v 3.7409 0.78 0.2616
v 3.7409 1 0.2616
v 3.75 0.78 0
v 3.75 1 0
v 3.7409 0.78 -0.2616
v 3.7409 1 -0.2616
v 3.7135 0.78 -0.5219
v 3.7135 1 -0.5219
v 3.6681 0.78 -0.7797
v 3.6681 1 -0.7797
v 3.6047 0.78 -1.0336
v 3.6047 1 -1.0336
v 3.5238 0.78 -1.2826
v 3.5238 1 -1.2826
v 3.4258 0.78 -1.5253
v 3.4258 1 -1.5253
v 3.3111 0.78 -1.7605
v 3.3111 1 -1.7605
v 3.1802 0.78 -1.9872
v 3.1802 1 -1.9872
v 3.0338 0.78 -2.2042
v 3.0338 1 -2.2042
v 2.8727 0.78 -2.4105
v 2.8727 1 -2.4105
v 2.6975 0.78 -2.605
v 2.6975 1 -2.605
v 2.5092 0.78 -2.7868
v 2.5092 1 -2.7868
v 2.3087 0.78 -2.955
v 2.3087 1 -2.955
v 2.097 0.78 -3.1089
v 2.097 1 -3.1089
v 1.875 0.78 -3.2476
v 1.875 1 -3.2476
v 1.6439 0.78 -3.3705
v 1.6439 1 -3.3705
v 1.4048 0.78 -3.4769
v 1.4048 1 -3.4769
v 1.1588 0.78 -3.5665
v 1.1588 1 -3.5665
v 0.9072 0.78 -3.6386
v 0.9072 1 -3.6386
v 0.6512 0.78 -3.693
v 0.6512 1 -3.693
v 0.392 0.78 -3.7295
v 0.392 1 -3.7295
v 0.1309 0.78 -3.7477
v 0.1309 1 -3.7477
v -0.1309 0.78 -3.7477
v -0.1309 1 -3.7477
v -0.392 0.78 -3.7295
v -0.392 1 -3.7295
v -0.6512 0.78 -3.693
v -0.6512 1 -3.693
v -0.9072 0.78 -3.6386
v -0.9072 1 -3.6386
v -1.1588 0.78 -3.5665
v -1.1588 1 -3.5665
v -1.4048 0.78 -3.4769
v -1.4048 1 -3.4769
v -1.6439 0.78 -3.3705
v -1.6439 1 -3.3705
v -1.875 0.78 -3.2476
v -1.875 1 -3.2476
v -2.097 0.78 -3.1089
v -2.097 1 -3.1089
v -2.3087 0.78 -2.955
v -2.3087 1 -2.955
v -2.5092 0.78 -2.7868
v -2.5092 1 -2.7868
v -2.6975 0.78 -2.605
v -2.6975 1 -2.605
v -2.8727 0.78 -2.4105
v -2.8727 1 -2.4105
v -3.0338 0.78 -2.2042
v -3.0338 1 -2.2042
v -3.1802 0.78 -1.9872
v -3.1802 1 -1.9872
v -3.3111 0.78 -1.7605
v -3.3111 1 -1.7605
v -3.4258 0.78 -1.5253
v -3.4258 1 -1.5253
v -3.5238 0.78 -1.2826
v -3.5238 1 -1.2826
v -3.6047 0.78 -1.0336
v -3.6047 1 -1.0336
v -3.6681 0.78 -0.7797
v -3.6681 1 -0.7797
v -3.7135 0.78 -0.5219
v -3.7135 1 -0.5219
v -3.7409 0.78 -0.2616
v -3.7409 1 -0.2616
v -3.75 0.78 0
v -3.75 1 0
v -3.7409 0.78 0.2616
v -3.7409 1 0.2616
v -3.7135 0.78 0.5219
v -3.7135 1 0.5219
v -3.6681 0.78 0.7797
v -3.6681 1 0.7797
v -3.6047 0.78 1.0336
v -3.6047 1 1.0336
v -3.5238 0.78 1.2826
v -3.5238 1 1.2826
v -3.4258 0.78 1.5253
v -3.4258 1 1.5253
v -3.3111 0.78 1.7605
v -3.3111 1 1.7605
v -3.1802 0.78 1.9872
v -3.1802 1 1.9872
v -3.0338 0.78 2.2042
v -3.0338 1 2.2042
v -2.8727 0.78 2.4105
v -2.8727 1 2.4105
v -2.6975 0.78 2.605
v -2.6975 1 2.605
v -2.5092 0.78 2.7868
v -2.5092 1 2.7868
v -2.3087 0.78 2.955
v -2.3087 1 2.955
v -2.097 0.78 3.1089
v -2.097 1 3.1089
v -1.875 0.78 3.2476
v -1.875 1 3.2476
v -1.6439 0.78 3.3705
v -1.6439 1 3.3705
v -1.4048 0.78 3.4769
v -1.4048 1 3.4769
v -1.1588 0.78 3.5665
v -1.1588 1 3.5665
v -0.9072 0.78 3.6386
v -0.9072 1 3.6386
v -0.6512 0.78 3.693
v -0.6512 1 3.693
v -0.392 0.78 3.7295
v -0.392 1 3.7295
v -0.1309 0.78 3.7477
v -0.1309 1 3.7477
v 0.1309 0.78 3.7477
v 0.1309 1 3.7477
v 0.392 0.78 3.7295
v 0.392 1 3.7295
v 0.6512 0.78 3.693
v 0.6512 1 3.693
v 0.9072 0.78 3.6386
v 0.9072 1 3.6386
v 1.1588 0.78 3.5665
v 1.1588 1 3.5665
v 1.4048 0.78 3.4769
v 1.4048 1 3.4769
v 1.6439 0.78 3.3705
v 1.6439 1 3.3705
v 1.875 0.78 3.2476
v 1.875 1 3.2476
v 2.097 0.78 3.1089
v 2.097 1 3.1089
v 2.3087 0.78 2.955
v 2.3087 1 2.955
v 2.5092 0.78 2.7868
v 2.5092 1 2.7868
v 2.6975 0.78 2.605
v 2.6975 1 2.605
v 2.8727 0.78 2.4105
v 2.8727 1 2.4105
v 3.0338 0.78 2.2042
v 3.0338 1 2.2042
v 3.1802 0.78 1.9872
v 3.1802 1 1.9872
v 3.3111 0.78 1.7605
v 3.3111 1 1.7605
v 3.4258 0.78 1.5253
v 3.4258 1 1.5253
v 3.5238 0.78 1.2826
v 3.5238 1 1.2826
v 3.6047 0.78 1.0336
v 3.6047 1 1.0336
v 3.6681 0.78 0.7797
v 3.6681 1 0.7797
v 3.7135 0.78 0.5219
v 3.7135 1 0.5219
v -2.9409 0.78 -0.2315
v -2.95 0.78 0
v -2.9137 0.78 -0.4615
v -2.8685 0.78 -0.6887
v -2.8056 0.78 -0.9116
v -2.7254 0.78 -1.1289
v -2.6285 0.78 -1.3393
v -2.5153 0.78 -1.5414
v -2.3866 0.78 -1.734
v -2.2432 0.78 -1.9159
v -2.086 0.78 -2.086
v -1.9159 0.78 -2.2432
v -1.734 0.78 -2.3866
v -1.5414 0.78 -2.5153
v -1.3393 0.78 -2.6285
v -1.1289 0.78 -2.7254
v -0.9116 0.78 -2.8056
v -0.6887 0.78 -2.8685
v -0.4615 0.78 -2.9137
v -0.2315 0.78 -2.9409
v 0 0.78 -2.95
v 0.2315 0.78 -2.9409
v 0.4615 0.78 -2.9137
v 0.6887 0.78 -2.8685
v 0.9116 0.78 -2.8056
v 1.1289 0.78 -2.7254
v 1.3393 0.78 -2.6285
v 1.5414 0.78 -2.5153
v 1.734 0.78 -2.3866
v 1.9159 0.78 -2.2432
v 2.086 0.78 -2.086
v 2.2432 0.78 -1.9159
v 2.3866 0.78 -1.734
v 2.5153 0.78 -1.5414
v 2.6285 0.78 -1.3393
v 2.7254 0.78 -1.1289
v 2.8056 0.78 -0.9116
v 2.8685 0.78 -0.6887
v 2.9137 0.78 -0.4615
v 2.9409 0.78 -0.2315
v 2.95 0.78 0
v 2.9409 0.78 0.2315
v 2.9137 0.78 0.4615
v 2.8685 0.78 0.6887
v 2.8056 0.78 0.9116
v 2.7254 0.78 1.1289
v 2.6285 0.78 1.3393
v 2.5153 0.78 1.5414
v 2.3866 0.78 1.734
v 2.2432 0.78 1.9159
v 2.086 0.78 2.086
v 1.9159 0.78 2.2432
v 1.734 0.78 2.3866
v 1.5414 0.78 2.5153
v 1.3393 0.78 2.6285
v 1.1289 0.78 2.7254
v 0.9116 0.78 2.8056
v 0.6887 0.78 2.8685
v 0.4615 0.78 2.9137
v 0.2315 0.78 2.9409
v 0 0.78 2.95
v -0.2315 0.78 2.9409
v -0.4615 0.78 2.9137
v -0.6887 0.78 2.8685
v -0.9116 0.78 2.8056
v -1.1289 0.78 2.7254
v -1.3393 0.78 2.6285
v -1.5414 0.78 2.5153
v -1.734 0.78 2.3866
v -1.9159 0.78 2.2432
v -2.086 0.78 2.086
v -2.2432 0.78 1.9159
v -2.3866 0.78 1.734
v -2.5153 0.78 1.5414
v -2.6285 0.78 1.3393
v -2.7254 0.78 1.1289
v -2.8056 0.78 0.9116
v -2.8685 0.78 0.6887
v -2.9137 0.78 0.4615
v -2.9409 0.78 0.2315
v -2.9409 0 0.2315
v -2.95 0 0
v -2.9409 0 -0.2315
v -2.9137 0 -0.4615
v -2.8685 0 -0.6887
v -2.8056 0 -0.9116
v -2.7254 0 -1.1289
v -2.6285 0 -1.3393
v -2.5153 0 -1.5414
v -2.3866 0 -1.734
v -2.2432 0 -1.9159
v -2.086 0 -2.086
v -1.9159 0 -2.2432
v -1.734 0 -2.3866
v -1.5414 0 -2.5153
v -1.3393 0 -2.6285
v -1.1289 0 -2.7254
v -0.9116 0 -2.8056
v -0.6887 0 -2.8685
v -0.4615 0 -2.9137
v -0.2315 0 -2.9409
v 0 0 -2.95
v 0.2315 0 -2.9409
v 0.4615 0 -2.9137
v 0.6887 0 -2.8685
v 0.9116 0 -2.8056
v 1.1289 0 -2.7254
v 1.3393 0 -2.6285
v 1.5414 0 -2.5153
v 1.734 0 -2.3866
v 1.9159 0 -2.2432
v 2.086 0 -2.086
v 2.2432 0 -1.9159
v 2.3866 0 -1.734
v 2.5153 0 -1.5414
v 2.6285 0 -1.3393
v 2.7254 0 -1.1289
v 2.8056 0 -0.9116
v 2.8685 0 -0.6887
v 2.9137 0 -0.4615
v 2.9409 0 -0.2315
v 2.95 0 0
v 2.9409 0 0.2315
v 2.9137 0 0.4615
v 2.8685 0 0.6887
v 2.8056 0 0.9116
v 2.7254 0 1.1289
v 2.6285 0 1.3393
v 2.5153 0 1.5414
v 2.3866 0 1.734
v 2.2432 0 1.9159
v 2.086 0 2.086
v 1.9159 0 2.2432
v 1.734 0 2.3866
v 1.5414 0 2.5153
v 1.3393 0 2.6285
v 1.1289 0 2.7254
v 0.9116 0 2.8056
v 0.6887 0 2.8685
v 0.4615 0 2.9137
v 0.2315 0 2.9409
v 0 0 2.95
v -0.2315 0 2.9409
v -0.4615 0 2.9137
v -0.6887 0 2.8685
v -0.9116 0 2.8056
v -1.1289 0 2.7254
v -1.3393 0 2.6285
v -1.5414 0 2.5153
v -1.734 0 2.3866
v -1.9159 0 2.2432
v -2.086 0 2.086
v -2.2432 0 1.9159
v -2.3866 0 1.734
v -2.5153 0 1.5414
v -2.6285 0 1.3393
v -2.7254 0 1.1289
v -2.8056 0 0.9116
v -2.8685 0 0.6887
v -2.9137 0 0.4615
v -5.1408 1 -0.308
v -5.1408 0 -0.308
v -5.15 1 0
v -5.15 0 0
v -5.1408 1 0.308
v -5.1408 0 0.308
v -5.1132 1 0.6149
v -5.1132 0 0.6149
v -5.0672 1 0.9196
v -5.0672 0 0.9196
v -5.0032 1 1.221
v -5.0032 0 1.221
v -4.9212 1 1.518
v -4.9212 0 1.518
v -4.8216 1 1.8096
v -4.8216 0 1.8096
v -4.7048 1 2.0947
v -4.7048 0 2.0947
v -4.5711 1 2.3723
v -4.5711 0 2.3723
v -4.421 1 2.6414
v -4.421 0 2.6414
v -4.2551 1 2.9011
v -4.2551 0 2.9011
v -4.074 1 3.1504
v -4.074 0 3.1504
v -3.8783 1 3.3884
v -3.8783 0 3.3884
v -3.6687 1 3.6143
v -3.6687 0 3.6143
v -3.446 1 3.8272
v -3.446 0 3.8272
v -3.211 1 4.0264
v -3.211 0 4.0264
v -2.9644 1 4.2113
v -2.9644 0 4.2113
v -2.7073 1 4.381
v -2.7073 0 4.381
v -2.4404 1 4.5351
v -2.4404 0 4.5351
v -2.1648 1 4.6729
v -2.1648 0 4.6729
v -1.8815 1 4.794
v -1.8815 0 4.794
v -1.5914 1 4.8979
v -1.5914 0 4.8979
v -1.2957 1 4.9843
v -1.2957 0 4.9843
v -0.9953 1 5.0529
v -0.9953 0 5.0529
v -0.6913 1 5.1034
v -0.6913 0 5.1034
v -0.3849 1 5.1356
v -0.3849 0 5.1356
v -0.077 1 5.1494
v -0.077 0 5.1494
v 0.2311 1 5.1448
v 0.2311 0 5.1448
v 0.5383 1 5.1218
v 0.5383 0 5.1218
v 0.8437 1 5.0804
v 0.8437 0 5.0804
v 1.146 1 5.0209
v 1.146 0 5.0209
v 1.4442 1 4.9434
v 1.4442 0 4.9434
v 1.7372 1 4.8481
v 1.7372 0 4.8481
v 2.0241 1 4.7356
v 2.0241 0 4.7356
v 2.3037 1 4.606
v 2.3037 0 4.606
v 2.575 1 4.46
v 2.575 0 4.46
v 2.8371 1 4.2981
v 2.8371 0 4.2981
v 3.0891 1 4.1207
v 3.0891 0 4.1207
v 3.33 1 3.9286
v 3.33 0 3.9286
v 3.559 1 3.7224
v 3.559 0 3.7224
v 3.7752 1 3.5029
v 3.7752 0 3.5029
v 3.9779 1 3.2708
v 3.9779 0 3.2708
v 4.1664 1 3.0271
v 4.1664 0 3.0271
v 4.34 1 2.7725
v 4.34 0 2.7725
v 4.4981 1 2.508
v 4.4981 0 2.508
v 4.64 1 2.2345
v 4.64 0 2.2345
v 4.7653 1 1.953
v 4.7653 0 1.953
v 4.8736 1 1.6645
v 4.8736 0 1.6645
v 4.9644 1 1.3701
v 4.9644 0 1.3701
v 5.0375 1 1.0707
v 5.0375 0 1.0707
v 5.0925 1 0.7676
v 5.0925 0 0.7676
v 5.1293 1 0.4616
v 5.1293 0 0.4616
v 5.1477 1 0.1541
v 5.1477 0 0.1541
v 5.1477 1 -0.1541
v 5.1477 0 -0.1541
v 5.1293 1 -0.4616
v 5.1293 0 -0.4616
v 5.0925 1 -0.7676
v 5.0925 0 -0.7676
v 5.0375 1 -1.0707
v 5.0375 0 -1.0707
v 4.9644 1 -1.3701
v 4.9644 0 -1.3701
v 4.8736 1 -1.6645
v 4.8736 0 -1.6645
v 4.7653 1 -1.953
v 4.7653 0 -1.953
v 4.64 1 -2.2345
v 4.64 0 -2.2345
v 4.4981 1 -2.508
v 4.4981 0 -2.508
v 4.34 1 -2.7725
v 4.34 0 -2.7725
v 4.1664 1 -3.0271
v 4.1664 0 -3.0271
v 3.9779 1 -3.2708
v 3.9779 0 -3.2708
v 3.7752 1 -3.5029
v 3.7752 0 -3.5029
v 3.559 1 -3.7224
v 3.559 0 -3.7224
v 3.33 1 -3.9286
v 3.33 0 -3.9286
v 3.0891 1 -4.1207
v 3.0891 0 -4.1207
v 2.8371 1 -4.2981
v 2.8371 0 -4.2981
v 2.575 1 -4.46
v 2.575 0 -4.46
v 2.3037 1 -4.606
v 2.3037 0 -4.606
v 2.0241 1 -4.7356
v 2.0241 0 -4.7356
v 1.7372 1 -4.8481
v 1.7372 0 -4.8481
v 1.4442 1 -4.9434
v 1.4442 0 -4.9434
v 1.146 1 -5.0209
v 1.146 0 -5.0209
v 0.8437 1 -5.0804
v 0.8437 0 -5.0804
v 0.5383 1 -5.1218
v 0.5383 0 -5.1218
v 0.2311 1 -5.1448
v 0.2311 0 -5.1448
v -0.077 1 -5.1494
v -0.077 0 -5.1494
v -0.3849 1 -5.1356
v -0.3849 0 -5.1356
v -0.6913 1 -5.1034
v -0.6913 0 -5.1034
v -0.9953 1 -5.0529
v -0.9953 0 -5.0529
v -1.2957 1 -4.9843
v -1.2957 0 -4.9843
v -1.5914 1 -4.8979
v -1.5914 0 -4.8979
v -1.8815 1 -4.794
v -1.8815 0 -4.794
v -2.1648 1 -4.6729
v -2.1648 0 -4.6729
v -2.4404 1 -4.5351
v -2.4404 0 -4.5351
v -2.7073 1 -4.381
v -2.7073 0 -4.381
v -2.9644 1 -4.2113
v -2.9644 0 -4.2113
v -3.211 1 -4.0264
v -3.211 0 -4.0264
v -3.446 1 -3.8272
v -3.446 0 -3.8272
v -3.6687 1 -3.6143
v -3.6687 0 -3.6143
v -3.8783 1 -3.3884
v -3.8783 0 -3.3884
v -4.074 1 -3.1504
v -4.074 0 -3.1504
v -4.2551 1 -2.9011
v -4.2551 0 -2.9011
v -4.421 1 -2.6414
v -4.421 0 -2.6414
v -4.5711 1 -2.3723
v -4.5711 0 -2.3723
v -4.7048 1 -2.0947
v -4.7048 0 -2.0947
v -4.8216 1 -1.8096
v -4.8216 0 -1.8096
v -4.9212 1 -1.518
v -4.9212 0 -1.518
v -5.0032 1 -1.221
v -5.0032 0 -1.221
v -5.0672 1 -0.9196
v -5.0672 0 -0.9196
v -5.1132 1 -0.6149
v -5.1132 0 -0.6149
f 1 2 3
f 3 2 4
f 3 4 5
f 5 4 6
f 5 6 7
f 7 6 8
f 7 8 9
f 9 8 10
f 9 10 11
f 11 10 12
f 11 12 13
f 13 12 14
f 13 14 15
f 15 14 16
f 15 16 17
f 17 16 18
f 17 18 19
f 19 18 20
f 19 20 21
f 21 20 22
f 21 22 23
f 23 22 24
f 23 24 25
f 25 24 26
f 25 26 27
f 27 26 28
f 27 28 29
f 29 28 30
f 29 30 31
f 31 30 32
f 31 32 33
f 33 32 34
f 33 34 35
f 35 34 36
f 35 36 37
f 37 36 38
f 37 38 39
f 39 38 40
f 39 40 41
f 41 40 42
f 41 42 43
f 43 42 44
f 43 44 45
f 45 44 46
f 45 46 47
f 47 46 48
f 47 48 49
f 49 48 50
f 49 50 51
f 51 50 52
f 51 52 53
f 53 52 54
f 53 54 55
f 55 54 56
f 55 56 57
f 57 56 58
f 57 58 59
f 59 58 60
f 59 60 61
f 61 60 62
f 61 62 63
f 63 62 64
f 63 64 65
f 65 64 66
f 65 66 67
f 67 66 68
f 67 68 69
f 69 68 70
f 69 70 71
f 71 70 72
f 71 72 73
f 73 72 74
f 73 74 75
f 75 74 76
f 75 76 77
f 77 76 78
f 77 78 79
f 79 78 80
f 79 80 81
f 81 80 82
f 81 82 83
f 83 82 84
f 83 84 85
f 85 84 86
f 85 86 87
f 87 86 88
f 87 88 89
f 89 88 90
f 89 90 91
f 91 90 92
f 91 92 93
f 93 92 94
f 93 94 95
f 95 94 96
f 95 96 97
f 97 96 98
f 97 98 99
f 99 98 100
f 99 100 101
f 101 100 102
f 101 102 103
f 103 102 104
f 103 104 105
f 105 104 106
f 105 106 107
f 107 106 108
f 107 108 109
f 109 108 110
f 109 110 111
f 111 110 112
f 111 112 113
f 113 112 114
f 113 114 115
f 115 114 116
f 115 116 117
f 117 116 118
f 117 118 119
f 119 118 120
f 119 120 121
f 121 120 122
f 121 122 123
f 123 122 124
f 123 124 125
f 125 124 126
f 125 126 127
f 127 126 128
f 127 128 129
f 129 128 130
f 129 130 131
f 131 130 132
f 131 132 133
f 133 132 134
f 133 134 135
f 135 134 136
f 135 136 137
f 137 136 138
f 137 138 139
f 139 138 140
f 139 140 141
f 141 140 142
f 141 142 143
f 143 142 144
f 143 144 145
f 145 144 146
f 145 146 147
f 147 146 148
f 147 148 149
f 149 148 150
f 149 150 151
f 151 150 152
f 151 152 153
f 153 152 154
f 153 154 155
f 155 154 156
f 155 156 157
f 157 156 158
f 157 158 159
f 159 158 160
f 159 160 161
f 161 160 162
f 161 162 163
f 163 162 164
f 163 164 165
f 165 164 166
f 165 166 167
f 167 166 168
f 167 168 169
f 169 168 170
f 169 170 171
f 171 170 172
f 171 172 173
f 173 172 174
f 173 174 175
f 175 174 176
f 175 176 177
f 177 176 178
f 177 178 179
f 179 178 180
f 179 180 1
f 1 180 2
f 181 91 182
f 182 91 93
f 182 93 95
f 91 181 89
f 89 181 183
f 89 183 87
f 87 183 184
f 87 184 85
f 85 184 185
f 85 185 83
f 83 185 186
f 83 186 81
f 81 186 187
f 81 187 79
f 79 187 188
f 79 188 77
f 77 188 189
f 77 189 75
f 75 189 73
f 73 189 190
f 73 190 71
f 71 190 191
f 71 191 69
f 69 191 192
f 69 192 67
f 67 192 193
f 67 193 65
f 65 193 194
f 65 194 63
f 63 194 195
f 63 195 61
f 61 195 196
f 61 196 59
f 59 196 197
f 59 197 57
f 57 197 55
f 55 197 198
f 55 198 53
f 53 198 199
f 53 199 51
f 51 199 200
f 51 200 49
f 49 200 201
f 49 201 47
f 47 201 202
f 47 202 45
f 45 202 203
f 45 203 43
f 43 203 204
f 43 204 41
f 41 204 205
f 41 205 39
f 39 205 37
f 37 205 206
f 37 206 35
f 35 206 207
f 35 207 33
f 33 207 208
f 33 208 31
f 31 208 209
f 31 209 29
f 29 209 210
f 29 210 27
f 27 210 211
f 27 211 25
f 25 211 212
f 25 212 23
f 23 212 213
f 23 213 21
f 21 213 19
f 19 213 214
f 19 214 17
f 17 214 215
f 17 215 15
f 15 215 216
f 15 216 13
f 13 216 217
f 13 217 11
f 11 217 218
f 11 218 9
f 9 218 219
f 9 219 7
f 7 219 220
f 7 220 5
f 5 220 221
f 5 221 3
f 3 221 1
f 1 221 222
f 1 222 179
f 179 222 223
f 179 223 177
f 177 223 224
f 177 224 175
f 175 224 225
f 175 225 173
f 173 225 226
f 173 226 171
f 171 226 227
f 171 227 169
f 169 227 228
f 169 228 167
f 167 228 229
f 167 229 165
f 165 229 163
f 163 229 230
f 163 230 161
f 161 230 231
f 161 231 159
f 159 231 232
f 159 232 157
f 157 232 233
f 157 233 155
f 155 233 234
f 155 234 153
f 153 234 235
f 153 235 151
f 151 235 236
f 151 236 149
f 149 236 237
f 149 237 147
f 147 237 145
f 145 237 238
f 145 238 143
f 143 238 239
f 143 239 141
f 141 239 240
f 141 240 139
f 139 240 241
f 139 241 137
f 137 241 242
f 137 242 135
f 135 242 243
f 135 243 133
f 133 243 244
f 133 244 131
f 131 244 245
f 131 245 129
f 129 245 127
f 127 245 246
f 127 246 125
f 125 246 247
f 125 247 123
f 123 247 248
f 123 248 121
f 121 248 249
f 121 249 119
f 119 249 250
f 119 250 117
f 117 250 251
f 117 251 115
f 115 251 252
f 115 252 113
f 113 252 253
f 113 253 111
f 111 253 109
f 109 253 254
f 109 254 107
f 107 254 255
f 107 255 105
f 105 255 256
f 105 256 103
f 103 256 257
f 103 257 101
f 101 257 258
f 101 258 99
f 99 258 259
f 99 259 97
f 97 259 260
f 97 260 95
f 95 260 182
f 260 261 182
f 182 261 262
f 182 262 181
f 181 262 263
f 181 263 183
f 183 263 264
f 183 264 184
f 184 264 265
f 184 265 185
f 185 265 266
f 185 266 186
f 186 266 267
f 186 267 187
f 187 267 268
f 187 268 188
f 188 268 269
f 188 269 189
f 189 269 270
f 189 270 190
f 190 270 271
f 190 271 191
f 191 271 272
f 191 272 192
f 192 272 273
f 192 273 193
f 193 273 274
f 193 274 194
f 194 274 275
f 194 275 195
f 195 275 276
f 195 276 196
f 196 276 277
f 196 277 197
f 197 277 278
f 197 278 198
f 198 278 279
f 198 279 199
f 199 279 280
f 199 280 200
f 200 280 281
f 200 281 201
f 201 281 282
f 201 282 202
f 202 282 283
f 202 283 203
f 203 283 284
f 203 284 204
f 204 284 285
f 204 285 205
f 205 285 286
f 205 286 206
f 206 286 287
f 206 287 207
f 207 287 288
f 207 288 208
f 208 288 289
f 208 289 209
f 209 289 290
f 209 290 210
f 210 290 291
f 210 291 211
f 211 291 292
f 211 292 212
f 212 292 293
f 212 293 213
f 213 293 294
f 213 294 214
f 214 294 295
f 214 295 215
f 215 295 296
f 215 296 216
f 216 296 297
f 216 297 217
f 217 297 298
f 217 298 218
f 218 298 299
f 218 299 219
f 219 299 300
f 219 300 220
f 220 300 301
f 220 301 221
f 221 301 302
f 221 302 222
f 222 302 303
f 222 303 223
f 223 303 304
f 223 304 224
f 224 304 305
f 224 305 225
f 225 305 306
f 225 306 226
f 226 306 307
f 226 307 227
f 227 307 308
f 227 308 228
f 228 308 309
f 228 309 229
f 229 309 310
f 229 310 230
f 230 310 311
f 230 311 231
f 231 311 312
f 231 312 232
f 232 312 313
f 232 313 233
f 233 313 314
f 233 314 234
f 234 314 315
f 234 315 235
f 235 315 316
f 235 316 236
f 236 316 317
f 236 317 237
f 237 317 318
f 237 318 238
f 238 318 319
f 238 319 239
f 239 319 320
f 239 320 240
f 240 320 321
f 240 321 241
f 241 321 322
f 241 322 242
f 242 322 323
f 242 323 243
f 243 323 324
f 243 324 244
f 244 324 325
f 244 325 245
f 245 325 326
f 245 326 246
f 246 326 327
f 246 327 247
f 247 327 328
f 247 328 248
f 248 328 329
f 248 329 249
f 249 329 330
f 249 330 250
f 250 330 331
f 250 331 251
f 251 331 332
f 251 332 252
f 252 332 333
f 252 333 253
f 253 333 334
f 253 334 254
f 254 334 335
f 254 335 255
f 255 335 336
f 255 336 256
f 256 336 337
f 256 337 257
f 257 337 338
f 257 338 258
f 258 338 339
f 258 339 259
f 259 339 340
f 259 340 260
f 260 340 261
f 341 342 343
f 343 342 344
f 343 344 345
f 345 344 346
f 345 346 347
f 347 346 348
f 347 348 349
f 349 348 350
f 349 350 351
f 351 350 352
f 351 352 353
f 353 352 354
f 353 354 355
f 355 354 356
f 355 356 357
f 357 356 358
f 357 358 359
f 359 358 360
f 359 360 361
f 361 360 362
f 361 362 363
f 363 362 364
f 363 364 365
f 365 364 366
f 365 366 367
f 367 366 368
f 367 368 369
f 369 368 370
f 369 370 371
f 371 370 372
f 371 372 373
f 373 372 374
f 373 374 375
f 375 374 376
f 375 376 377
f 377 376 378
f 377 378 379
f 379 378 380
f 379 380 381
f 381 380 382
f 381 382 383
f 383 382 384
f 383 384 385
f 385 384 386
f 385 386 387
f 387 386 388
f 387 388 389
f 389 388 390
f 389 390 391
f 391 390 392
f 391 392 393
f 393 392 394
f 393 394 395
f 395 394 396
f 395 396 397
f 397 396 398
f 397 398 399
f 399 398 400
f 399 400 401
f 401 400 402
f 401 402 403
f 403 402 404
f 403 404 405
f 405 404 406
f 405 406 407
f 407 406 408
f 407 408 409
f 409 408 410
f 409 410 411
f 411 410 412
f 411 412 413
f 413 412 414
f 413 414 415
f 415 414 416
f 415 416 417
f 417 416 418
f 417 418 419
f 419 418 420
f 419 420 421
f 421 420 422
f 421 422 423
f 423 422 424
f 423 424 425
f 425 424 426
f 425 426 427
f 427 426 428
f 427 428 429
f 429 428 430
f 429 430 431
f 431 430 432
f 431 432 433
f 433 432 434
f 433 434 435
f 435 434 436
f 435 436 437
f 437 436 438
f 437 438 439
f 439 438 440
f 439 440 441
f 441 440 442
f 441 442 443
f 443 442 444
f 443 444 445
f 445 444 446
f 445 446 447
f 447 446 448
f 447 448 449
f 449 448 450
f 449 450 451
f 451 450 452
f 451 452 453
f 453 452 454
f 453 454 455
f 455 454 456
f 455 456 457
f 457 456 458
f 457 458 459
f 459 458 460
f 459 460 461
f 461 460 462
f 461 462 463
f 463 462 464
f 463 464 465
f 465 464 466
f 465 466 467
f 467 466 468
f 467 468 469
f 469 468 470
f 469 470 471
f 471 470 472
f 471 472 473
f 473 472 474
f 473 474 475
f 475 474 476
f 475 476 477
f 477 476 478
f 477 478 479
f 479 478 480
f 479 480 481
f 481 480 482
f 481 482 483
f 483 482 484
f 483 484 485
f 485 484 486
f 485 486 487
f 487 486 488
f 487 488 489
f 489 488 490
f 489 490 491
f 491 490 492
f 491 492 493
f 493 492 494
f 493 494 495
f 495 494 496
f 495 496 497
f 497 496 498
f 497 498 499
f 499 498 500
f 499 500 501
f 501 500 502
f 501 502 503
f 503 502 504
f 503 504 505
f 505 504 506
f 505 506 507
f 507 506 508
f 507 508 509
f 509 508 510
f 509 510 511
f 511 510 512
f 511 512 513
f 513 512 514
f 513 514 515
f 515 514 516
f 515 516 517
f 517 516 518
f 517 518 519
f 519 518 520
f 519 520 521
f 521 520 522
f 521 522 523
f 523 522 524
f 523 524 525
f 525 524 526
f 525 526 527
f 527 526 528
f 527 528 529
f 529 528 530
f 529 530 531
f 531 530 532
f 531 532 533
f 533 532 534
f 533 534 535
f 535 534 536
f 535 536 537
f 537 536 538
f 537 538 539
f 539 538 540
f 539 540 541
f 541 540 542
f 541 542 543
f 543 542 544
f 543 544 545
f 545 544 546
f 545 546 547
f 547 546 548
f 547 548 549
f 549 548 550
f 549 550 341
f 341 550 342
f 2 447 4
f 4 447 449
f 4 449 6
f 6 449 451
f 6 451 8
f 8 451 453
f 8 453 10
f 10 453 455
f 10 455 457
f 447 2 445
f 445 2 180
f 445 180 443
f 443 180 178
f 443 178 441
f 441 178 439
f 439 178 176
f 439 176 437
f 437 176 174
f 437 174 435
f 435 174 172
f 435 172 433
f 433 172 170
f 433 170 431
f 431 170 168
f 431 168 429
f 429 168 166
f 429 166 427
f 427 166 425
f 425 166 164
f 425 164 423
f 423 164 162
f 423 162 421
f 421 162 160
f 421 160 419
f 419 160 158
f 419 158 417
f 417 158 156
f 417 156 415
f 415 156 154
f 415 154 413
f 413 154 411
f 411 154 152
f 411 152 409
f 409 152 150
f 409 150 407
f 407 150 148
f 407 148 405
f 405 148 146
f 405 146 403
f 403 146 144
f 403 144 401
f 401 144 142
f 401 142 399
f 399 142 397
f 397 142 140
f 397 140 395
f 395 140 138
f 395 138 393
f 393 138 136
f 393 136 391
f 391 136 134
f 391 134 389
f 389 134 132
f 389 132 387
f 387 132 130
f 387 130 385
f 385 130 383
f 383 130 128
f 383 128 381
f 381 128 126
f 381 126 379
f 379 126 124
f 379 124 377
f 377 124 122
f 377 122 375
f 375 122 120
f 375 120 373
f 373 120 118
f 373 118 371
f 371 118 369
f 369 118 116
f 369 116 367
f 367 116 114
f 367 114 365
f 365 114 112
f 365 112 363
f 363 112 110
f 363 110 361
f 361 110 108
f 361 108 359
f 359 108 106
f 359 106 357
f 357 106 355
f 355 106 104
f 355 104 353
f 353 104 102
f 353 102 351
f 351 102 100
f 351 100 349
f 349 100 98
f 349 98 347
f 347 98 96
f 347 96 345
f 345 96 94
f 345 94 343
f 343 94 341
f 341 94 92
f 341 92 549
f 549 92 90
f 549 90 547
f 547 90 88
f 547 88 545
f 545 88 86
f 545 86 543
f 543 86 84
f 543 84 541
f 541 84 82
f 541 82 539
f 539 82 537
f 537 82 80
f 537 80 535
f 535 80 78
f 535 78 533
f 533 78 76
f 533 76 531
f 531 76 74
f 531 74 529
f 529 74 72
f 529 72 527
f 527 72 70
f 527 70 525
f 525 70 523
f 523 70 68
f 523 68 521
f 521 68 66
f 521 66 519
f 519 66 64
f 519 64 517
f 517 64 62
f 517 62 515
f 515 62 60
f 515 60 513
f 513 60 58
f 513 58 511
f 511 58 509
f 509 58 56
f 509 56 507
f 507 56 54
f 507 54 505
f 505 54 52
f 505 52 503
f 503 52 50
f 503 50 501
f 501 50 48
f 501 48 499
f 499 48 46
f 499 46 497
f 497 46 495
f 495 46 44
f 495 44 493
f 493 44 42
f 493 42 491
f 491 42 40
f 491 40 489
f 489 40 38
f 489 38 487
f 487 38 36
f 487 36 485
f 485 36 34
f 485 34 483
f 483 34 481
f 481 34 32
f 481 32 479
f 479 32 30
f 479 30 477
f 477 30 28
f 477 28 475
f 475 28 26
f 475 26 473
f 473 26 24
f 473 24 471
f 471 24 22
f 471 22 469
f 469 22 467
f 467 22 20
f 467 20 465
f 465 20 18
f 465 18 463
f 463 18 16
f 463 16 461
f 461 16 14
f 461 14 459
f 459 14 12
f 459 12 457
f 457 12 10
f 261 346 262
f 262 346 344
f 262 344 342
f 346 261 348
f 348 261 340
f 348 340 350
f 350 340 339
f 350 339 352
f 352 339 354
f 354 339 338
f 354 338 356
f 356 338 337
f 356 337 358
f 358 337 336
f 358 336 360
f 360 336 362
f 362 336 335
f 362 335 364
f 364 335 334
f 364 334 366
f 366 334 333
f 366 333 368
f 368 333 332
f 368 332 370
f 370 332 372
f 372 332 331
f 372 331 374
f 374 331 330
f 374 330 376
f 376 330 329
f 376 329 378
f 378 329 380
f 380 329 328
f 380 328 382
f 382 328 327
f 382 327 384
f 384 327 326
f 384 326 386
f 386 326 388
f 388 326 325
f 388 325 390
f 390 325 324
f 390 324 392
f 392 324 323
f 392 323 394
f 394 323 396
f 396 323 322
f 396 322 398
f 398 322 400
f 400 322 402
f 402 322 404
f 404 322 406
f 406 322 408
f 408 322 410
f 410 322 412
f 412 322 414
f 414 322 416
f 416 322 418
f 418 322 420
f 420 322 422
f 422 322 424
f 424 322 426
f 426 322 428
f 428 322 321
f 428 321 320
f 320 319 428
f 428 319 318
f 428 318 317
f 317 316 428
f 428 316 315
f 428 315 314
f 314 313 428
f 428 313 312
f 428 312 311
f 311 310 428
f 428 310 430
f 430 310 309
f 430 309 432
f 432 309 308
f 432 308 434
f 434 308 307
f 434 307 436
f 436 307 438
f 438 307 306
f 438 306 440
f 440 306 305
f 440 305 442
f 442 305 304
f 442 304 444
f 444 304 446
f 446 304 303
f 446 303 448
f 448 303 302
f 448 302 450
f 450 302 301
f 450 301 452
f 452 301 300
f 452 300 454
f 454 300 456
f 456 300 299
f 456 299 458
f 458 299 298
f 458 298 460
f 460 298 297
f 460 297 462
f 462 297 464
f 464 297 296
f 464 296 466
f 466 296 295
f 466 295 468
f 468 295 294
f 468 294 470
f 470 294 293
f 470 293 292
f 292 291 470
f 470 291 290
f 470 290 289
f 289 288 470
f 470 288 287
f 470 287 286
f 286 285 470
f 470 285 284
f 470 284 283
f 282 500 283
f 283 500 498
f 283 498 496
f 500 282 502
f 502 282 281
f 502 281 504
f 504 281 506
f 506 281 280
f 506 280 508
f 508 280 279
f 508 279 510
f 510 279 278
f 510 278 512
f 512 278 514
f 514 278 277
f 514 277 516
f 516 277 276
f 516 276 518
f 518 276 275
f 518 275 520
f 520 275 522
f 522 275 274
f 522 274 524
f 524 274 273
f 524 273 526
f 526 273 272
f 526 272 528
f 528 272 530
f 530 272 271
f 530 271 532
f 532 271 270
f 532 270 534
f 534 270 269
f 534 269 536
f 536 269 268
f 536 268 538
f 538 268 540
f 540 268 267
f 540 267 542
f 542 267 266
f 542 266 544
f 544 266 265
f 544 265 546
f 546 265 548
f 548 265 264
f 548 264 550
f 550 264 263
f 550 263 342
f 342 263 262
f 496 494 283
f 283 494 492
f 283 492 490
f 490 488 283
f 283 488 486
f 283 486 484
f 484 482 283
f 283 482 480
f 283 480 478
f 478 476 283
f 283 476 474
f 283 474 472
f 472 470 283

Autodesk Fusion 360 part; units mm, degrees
sketch "Sketch1" plane through (0, 0, 0) normal (0, 1, 0) x (1, 0, 0)
  circle A0 centre (0, 0) radius 5
  circle A1 centre (0, 0) radius 2.5
  dimension "d1" = 10
  dimension "d2" = 5
sketch "Sketch2" plane through (0, 0, 0) normal (0, 1, 0) x (1, 0, 0)
  circle A0 centre (0, 0) radius 5
  circle A1 centre (0, 0) radius 4
  dimension "d5" = 10
  dimension "d6" = 8
sketch "Sketch3" plane through (0, 0, 0) normal (0, 1, 0) x (1, 0, 0)
  circle A0 centre (0, 0) radius 5.15
  circle A1 centre (0, 0) radius 2.85
  dimension "d9" = 10.3
  dimension "d10" = 5.7
extrude "Extrude3" add sketch "Sketch3" along normal blind 1
move_face "OffsetFaces1" offset -0.05 1 faces at (2.8465, 0.6667, 0.1421)
sketch "Sketch4" plane through (0, 1, 0) normal (0, 1, 0) x (-1, 0, 0)
  circle A0 centre (0, 0) radius 2.9
  circle A1 centre (0, 0) radius 5.15
  circle A2 centre (0, 0) radius 3.4
  dimension "d14" = 6.8
extrude "Extrude4" cut sketch "Sketch4" against normal blind 0.15 contours A2
move_face "OffsetFaces2" offset -0.1 1 faces at (2.8964, 0.5667, 0.1446)
move_face "OffsetFaces3" offset 0.05 1 faces at (2.9963, 0.2833, -0.1495)
move_face "OffsetFaces4" offset -0.07 1 faces at (-3.2264, 0.85, -0.3155)
move_face "OffsetFaces5" offset -0.05 1 faces at (-3.3958, 0.8533, -0.1695)
move_face "OffsetFaces6" offset -0.3 1 faces at (-3.4457, 0.8533, -0.172)
equation "d6 = 10 mm - 2 mm"
equation "d10 = 10.3 mm - ( 2.3 * 2 ) * 1 mm"
equation "d14 = 5.800 mm + 1 mm"
